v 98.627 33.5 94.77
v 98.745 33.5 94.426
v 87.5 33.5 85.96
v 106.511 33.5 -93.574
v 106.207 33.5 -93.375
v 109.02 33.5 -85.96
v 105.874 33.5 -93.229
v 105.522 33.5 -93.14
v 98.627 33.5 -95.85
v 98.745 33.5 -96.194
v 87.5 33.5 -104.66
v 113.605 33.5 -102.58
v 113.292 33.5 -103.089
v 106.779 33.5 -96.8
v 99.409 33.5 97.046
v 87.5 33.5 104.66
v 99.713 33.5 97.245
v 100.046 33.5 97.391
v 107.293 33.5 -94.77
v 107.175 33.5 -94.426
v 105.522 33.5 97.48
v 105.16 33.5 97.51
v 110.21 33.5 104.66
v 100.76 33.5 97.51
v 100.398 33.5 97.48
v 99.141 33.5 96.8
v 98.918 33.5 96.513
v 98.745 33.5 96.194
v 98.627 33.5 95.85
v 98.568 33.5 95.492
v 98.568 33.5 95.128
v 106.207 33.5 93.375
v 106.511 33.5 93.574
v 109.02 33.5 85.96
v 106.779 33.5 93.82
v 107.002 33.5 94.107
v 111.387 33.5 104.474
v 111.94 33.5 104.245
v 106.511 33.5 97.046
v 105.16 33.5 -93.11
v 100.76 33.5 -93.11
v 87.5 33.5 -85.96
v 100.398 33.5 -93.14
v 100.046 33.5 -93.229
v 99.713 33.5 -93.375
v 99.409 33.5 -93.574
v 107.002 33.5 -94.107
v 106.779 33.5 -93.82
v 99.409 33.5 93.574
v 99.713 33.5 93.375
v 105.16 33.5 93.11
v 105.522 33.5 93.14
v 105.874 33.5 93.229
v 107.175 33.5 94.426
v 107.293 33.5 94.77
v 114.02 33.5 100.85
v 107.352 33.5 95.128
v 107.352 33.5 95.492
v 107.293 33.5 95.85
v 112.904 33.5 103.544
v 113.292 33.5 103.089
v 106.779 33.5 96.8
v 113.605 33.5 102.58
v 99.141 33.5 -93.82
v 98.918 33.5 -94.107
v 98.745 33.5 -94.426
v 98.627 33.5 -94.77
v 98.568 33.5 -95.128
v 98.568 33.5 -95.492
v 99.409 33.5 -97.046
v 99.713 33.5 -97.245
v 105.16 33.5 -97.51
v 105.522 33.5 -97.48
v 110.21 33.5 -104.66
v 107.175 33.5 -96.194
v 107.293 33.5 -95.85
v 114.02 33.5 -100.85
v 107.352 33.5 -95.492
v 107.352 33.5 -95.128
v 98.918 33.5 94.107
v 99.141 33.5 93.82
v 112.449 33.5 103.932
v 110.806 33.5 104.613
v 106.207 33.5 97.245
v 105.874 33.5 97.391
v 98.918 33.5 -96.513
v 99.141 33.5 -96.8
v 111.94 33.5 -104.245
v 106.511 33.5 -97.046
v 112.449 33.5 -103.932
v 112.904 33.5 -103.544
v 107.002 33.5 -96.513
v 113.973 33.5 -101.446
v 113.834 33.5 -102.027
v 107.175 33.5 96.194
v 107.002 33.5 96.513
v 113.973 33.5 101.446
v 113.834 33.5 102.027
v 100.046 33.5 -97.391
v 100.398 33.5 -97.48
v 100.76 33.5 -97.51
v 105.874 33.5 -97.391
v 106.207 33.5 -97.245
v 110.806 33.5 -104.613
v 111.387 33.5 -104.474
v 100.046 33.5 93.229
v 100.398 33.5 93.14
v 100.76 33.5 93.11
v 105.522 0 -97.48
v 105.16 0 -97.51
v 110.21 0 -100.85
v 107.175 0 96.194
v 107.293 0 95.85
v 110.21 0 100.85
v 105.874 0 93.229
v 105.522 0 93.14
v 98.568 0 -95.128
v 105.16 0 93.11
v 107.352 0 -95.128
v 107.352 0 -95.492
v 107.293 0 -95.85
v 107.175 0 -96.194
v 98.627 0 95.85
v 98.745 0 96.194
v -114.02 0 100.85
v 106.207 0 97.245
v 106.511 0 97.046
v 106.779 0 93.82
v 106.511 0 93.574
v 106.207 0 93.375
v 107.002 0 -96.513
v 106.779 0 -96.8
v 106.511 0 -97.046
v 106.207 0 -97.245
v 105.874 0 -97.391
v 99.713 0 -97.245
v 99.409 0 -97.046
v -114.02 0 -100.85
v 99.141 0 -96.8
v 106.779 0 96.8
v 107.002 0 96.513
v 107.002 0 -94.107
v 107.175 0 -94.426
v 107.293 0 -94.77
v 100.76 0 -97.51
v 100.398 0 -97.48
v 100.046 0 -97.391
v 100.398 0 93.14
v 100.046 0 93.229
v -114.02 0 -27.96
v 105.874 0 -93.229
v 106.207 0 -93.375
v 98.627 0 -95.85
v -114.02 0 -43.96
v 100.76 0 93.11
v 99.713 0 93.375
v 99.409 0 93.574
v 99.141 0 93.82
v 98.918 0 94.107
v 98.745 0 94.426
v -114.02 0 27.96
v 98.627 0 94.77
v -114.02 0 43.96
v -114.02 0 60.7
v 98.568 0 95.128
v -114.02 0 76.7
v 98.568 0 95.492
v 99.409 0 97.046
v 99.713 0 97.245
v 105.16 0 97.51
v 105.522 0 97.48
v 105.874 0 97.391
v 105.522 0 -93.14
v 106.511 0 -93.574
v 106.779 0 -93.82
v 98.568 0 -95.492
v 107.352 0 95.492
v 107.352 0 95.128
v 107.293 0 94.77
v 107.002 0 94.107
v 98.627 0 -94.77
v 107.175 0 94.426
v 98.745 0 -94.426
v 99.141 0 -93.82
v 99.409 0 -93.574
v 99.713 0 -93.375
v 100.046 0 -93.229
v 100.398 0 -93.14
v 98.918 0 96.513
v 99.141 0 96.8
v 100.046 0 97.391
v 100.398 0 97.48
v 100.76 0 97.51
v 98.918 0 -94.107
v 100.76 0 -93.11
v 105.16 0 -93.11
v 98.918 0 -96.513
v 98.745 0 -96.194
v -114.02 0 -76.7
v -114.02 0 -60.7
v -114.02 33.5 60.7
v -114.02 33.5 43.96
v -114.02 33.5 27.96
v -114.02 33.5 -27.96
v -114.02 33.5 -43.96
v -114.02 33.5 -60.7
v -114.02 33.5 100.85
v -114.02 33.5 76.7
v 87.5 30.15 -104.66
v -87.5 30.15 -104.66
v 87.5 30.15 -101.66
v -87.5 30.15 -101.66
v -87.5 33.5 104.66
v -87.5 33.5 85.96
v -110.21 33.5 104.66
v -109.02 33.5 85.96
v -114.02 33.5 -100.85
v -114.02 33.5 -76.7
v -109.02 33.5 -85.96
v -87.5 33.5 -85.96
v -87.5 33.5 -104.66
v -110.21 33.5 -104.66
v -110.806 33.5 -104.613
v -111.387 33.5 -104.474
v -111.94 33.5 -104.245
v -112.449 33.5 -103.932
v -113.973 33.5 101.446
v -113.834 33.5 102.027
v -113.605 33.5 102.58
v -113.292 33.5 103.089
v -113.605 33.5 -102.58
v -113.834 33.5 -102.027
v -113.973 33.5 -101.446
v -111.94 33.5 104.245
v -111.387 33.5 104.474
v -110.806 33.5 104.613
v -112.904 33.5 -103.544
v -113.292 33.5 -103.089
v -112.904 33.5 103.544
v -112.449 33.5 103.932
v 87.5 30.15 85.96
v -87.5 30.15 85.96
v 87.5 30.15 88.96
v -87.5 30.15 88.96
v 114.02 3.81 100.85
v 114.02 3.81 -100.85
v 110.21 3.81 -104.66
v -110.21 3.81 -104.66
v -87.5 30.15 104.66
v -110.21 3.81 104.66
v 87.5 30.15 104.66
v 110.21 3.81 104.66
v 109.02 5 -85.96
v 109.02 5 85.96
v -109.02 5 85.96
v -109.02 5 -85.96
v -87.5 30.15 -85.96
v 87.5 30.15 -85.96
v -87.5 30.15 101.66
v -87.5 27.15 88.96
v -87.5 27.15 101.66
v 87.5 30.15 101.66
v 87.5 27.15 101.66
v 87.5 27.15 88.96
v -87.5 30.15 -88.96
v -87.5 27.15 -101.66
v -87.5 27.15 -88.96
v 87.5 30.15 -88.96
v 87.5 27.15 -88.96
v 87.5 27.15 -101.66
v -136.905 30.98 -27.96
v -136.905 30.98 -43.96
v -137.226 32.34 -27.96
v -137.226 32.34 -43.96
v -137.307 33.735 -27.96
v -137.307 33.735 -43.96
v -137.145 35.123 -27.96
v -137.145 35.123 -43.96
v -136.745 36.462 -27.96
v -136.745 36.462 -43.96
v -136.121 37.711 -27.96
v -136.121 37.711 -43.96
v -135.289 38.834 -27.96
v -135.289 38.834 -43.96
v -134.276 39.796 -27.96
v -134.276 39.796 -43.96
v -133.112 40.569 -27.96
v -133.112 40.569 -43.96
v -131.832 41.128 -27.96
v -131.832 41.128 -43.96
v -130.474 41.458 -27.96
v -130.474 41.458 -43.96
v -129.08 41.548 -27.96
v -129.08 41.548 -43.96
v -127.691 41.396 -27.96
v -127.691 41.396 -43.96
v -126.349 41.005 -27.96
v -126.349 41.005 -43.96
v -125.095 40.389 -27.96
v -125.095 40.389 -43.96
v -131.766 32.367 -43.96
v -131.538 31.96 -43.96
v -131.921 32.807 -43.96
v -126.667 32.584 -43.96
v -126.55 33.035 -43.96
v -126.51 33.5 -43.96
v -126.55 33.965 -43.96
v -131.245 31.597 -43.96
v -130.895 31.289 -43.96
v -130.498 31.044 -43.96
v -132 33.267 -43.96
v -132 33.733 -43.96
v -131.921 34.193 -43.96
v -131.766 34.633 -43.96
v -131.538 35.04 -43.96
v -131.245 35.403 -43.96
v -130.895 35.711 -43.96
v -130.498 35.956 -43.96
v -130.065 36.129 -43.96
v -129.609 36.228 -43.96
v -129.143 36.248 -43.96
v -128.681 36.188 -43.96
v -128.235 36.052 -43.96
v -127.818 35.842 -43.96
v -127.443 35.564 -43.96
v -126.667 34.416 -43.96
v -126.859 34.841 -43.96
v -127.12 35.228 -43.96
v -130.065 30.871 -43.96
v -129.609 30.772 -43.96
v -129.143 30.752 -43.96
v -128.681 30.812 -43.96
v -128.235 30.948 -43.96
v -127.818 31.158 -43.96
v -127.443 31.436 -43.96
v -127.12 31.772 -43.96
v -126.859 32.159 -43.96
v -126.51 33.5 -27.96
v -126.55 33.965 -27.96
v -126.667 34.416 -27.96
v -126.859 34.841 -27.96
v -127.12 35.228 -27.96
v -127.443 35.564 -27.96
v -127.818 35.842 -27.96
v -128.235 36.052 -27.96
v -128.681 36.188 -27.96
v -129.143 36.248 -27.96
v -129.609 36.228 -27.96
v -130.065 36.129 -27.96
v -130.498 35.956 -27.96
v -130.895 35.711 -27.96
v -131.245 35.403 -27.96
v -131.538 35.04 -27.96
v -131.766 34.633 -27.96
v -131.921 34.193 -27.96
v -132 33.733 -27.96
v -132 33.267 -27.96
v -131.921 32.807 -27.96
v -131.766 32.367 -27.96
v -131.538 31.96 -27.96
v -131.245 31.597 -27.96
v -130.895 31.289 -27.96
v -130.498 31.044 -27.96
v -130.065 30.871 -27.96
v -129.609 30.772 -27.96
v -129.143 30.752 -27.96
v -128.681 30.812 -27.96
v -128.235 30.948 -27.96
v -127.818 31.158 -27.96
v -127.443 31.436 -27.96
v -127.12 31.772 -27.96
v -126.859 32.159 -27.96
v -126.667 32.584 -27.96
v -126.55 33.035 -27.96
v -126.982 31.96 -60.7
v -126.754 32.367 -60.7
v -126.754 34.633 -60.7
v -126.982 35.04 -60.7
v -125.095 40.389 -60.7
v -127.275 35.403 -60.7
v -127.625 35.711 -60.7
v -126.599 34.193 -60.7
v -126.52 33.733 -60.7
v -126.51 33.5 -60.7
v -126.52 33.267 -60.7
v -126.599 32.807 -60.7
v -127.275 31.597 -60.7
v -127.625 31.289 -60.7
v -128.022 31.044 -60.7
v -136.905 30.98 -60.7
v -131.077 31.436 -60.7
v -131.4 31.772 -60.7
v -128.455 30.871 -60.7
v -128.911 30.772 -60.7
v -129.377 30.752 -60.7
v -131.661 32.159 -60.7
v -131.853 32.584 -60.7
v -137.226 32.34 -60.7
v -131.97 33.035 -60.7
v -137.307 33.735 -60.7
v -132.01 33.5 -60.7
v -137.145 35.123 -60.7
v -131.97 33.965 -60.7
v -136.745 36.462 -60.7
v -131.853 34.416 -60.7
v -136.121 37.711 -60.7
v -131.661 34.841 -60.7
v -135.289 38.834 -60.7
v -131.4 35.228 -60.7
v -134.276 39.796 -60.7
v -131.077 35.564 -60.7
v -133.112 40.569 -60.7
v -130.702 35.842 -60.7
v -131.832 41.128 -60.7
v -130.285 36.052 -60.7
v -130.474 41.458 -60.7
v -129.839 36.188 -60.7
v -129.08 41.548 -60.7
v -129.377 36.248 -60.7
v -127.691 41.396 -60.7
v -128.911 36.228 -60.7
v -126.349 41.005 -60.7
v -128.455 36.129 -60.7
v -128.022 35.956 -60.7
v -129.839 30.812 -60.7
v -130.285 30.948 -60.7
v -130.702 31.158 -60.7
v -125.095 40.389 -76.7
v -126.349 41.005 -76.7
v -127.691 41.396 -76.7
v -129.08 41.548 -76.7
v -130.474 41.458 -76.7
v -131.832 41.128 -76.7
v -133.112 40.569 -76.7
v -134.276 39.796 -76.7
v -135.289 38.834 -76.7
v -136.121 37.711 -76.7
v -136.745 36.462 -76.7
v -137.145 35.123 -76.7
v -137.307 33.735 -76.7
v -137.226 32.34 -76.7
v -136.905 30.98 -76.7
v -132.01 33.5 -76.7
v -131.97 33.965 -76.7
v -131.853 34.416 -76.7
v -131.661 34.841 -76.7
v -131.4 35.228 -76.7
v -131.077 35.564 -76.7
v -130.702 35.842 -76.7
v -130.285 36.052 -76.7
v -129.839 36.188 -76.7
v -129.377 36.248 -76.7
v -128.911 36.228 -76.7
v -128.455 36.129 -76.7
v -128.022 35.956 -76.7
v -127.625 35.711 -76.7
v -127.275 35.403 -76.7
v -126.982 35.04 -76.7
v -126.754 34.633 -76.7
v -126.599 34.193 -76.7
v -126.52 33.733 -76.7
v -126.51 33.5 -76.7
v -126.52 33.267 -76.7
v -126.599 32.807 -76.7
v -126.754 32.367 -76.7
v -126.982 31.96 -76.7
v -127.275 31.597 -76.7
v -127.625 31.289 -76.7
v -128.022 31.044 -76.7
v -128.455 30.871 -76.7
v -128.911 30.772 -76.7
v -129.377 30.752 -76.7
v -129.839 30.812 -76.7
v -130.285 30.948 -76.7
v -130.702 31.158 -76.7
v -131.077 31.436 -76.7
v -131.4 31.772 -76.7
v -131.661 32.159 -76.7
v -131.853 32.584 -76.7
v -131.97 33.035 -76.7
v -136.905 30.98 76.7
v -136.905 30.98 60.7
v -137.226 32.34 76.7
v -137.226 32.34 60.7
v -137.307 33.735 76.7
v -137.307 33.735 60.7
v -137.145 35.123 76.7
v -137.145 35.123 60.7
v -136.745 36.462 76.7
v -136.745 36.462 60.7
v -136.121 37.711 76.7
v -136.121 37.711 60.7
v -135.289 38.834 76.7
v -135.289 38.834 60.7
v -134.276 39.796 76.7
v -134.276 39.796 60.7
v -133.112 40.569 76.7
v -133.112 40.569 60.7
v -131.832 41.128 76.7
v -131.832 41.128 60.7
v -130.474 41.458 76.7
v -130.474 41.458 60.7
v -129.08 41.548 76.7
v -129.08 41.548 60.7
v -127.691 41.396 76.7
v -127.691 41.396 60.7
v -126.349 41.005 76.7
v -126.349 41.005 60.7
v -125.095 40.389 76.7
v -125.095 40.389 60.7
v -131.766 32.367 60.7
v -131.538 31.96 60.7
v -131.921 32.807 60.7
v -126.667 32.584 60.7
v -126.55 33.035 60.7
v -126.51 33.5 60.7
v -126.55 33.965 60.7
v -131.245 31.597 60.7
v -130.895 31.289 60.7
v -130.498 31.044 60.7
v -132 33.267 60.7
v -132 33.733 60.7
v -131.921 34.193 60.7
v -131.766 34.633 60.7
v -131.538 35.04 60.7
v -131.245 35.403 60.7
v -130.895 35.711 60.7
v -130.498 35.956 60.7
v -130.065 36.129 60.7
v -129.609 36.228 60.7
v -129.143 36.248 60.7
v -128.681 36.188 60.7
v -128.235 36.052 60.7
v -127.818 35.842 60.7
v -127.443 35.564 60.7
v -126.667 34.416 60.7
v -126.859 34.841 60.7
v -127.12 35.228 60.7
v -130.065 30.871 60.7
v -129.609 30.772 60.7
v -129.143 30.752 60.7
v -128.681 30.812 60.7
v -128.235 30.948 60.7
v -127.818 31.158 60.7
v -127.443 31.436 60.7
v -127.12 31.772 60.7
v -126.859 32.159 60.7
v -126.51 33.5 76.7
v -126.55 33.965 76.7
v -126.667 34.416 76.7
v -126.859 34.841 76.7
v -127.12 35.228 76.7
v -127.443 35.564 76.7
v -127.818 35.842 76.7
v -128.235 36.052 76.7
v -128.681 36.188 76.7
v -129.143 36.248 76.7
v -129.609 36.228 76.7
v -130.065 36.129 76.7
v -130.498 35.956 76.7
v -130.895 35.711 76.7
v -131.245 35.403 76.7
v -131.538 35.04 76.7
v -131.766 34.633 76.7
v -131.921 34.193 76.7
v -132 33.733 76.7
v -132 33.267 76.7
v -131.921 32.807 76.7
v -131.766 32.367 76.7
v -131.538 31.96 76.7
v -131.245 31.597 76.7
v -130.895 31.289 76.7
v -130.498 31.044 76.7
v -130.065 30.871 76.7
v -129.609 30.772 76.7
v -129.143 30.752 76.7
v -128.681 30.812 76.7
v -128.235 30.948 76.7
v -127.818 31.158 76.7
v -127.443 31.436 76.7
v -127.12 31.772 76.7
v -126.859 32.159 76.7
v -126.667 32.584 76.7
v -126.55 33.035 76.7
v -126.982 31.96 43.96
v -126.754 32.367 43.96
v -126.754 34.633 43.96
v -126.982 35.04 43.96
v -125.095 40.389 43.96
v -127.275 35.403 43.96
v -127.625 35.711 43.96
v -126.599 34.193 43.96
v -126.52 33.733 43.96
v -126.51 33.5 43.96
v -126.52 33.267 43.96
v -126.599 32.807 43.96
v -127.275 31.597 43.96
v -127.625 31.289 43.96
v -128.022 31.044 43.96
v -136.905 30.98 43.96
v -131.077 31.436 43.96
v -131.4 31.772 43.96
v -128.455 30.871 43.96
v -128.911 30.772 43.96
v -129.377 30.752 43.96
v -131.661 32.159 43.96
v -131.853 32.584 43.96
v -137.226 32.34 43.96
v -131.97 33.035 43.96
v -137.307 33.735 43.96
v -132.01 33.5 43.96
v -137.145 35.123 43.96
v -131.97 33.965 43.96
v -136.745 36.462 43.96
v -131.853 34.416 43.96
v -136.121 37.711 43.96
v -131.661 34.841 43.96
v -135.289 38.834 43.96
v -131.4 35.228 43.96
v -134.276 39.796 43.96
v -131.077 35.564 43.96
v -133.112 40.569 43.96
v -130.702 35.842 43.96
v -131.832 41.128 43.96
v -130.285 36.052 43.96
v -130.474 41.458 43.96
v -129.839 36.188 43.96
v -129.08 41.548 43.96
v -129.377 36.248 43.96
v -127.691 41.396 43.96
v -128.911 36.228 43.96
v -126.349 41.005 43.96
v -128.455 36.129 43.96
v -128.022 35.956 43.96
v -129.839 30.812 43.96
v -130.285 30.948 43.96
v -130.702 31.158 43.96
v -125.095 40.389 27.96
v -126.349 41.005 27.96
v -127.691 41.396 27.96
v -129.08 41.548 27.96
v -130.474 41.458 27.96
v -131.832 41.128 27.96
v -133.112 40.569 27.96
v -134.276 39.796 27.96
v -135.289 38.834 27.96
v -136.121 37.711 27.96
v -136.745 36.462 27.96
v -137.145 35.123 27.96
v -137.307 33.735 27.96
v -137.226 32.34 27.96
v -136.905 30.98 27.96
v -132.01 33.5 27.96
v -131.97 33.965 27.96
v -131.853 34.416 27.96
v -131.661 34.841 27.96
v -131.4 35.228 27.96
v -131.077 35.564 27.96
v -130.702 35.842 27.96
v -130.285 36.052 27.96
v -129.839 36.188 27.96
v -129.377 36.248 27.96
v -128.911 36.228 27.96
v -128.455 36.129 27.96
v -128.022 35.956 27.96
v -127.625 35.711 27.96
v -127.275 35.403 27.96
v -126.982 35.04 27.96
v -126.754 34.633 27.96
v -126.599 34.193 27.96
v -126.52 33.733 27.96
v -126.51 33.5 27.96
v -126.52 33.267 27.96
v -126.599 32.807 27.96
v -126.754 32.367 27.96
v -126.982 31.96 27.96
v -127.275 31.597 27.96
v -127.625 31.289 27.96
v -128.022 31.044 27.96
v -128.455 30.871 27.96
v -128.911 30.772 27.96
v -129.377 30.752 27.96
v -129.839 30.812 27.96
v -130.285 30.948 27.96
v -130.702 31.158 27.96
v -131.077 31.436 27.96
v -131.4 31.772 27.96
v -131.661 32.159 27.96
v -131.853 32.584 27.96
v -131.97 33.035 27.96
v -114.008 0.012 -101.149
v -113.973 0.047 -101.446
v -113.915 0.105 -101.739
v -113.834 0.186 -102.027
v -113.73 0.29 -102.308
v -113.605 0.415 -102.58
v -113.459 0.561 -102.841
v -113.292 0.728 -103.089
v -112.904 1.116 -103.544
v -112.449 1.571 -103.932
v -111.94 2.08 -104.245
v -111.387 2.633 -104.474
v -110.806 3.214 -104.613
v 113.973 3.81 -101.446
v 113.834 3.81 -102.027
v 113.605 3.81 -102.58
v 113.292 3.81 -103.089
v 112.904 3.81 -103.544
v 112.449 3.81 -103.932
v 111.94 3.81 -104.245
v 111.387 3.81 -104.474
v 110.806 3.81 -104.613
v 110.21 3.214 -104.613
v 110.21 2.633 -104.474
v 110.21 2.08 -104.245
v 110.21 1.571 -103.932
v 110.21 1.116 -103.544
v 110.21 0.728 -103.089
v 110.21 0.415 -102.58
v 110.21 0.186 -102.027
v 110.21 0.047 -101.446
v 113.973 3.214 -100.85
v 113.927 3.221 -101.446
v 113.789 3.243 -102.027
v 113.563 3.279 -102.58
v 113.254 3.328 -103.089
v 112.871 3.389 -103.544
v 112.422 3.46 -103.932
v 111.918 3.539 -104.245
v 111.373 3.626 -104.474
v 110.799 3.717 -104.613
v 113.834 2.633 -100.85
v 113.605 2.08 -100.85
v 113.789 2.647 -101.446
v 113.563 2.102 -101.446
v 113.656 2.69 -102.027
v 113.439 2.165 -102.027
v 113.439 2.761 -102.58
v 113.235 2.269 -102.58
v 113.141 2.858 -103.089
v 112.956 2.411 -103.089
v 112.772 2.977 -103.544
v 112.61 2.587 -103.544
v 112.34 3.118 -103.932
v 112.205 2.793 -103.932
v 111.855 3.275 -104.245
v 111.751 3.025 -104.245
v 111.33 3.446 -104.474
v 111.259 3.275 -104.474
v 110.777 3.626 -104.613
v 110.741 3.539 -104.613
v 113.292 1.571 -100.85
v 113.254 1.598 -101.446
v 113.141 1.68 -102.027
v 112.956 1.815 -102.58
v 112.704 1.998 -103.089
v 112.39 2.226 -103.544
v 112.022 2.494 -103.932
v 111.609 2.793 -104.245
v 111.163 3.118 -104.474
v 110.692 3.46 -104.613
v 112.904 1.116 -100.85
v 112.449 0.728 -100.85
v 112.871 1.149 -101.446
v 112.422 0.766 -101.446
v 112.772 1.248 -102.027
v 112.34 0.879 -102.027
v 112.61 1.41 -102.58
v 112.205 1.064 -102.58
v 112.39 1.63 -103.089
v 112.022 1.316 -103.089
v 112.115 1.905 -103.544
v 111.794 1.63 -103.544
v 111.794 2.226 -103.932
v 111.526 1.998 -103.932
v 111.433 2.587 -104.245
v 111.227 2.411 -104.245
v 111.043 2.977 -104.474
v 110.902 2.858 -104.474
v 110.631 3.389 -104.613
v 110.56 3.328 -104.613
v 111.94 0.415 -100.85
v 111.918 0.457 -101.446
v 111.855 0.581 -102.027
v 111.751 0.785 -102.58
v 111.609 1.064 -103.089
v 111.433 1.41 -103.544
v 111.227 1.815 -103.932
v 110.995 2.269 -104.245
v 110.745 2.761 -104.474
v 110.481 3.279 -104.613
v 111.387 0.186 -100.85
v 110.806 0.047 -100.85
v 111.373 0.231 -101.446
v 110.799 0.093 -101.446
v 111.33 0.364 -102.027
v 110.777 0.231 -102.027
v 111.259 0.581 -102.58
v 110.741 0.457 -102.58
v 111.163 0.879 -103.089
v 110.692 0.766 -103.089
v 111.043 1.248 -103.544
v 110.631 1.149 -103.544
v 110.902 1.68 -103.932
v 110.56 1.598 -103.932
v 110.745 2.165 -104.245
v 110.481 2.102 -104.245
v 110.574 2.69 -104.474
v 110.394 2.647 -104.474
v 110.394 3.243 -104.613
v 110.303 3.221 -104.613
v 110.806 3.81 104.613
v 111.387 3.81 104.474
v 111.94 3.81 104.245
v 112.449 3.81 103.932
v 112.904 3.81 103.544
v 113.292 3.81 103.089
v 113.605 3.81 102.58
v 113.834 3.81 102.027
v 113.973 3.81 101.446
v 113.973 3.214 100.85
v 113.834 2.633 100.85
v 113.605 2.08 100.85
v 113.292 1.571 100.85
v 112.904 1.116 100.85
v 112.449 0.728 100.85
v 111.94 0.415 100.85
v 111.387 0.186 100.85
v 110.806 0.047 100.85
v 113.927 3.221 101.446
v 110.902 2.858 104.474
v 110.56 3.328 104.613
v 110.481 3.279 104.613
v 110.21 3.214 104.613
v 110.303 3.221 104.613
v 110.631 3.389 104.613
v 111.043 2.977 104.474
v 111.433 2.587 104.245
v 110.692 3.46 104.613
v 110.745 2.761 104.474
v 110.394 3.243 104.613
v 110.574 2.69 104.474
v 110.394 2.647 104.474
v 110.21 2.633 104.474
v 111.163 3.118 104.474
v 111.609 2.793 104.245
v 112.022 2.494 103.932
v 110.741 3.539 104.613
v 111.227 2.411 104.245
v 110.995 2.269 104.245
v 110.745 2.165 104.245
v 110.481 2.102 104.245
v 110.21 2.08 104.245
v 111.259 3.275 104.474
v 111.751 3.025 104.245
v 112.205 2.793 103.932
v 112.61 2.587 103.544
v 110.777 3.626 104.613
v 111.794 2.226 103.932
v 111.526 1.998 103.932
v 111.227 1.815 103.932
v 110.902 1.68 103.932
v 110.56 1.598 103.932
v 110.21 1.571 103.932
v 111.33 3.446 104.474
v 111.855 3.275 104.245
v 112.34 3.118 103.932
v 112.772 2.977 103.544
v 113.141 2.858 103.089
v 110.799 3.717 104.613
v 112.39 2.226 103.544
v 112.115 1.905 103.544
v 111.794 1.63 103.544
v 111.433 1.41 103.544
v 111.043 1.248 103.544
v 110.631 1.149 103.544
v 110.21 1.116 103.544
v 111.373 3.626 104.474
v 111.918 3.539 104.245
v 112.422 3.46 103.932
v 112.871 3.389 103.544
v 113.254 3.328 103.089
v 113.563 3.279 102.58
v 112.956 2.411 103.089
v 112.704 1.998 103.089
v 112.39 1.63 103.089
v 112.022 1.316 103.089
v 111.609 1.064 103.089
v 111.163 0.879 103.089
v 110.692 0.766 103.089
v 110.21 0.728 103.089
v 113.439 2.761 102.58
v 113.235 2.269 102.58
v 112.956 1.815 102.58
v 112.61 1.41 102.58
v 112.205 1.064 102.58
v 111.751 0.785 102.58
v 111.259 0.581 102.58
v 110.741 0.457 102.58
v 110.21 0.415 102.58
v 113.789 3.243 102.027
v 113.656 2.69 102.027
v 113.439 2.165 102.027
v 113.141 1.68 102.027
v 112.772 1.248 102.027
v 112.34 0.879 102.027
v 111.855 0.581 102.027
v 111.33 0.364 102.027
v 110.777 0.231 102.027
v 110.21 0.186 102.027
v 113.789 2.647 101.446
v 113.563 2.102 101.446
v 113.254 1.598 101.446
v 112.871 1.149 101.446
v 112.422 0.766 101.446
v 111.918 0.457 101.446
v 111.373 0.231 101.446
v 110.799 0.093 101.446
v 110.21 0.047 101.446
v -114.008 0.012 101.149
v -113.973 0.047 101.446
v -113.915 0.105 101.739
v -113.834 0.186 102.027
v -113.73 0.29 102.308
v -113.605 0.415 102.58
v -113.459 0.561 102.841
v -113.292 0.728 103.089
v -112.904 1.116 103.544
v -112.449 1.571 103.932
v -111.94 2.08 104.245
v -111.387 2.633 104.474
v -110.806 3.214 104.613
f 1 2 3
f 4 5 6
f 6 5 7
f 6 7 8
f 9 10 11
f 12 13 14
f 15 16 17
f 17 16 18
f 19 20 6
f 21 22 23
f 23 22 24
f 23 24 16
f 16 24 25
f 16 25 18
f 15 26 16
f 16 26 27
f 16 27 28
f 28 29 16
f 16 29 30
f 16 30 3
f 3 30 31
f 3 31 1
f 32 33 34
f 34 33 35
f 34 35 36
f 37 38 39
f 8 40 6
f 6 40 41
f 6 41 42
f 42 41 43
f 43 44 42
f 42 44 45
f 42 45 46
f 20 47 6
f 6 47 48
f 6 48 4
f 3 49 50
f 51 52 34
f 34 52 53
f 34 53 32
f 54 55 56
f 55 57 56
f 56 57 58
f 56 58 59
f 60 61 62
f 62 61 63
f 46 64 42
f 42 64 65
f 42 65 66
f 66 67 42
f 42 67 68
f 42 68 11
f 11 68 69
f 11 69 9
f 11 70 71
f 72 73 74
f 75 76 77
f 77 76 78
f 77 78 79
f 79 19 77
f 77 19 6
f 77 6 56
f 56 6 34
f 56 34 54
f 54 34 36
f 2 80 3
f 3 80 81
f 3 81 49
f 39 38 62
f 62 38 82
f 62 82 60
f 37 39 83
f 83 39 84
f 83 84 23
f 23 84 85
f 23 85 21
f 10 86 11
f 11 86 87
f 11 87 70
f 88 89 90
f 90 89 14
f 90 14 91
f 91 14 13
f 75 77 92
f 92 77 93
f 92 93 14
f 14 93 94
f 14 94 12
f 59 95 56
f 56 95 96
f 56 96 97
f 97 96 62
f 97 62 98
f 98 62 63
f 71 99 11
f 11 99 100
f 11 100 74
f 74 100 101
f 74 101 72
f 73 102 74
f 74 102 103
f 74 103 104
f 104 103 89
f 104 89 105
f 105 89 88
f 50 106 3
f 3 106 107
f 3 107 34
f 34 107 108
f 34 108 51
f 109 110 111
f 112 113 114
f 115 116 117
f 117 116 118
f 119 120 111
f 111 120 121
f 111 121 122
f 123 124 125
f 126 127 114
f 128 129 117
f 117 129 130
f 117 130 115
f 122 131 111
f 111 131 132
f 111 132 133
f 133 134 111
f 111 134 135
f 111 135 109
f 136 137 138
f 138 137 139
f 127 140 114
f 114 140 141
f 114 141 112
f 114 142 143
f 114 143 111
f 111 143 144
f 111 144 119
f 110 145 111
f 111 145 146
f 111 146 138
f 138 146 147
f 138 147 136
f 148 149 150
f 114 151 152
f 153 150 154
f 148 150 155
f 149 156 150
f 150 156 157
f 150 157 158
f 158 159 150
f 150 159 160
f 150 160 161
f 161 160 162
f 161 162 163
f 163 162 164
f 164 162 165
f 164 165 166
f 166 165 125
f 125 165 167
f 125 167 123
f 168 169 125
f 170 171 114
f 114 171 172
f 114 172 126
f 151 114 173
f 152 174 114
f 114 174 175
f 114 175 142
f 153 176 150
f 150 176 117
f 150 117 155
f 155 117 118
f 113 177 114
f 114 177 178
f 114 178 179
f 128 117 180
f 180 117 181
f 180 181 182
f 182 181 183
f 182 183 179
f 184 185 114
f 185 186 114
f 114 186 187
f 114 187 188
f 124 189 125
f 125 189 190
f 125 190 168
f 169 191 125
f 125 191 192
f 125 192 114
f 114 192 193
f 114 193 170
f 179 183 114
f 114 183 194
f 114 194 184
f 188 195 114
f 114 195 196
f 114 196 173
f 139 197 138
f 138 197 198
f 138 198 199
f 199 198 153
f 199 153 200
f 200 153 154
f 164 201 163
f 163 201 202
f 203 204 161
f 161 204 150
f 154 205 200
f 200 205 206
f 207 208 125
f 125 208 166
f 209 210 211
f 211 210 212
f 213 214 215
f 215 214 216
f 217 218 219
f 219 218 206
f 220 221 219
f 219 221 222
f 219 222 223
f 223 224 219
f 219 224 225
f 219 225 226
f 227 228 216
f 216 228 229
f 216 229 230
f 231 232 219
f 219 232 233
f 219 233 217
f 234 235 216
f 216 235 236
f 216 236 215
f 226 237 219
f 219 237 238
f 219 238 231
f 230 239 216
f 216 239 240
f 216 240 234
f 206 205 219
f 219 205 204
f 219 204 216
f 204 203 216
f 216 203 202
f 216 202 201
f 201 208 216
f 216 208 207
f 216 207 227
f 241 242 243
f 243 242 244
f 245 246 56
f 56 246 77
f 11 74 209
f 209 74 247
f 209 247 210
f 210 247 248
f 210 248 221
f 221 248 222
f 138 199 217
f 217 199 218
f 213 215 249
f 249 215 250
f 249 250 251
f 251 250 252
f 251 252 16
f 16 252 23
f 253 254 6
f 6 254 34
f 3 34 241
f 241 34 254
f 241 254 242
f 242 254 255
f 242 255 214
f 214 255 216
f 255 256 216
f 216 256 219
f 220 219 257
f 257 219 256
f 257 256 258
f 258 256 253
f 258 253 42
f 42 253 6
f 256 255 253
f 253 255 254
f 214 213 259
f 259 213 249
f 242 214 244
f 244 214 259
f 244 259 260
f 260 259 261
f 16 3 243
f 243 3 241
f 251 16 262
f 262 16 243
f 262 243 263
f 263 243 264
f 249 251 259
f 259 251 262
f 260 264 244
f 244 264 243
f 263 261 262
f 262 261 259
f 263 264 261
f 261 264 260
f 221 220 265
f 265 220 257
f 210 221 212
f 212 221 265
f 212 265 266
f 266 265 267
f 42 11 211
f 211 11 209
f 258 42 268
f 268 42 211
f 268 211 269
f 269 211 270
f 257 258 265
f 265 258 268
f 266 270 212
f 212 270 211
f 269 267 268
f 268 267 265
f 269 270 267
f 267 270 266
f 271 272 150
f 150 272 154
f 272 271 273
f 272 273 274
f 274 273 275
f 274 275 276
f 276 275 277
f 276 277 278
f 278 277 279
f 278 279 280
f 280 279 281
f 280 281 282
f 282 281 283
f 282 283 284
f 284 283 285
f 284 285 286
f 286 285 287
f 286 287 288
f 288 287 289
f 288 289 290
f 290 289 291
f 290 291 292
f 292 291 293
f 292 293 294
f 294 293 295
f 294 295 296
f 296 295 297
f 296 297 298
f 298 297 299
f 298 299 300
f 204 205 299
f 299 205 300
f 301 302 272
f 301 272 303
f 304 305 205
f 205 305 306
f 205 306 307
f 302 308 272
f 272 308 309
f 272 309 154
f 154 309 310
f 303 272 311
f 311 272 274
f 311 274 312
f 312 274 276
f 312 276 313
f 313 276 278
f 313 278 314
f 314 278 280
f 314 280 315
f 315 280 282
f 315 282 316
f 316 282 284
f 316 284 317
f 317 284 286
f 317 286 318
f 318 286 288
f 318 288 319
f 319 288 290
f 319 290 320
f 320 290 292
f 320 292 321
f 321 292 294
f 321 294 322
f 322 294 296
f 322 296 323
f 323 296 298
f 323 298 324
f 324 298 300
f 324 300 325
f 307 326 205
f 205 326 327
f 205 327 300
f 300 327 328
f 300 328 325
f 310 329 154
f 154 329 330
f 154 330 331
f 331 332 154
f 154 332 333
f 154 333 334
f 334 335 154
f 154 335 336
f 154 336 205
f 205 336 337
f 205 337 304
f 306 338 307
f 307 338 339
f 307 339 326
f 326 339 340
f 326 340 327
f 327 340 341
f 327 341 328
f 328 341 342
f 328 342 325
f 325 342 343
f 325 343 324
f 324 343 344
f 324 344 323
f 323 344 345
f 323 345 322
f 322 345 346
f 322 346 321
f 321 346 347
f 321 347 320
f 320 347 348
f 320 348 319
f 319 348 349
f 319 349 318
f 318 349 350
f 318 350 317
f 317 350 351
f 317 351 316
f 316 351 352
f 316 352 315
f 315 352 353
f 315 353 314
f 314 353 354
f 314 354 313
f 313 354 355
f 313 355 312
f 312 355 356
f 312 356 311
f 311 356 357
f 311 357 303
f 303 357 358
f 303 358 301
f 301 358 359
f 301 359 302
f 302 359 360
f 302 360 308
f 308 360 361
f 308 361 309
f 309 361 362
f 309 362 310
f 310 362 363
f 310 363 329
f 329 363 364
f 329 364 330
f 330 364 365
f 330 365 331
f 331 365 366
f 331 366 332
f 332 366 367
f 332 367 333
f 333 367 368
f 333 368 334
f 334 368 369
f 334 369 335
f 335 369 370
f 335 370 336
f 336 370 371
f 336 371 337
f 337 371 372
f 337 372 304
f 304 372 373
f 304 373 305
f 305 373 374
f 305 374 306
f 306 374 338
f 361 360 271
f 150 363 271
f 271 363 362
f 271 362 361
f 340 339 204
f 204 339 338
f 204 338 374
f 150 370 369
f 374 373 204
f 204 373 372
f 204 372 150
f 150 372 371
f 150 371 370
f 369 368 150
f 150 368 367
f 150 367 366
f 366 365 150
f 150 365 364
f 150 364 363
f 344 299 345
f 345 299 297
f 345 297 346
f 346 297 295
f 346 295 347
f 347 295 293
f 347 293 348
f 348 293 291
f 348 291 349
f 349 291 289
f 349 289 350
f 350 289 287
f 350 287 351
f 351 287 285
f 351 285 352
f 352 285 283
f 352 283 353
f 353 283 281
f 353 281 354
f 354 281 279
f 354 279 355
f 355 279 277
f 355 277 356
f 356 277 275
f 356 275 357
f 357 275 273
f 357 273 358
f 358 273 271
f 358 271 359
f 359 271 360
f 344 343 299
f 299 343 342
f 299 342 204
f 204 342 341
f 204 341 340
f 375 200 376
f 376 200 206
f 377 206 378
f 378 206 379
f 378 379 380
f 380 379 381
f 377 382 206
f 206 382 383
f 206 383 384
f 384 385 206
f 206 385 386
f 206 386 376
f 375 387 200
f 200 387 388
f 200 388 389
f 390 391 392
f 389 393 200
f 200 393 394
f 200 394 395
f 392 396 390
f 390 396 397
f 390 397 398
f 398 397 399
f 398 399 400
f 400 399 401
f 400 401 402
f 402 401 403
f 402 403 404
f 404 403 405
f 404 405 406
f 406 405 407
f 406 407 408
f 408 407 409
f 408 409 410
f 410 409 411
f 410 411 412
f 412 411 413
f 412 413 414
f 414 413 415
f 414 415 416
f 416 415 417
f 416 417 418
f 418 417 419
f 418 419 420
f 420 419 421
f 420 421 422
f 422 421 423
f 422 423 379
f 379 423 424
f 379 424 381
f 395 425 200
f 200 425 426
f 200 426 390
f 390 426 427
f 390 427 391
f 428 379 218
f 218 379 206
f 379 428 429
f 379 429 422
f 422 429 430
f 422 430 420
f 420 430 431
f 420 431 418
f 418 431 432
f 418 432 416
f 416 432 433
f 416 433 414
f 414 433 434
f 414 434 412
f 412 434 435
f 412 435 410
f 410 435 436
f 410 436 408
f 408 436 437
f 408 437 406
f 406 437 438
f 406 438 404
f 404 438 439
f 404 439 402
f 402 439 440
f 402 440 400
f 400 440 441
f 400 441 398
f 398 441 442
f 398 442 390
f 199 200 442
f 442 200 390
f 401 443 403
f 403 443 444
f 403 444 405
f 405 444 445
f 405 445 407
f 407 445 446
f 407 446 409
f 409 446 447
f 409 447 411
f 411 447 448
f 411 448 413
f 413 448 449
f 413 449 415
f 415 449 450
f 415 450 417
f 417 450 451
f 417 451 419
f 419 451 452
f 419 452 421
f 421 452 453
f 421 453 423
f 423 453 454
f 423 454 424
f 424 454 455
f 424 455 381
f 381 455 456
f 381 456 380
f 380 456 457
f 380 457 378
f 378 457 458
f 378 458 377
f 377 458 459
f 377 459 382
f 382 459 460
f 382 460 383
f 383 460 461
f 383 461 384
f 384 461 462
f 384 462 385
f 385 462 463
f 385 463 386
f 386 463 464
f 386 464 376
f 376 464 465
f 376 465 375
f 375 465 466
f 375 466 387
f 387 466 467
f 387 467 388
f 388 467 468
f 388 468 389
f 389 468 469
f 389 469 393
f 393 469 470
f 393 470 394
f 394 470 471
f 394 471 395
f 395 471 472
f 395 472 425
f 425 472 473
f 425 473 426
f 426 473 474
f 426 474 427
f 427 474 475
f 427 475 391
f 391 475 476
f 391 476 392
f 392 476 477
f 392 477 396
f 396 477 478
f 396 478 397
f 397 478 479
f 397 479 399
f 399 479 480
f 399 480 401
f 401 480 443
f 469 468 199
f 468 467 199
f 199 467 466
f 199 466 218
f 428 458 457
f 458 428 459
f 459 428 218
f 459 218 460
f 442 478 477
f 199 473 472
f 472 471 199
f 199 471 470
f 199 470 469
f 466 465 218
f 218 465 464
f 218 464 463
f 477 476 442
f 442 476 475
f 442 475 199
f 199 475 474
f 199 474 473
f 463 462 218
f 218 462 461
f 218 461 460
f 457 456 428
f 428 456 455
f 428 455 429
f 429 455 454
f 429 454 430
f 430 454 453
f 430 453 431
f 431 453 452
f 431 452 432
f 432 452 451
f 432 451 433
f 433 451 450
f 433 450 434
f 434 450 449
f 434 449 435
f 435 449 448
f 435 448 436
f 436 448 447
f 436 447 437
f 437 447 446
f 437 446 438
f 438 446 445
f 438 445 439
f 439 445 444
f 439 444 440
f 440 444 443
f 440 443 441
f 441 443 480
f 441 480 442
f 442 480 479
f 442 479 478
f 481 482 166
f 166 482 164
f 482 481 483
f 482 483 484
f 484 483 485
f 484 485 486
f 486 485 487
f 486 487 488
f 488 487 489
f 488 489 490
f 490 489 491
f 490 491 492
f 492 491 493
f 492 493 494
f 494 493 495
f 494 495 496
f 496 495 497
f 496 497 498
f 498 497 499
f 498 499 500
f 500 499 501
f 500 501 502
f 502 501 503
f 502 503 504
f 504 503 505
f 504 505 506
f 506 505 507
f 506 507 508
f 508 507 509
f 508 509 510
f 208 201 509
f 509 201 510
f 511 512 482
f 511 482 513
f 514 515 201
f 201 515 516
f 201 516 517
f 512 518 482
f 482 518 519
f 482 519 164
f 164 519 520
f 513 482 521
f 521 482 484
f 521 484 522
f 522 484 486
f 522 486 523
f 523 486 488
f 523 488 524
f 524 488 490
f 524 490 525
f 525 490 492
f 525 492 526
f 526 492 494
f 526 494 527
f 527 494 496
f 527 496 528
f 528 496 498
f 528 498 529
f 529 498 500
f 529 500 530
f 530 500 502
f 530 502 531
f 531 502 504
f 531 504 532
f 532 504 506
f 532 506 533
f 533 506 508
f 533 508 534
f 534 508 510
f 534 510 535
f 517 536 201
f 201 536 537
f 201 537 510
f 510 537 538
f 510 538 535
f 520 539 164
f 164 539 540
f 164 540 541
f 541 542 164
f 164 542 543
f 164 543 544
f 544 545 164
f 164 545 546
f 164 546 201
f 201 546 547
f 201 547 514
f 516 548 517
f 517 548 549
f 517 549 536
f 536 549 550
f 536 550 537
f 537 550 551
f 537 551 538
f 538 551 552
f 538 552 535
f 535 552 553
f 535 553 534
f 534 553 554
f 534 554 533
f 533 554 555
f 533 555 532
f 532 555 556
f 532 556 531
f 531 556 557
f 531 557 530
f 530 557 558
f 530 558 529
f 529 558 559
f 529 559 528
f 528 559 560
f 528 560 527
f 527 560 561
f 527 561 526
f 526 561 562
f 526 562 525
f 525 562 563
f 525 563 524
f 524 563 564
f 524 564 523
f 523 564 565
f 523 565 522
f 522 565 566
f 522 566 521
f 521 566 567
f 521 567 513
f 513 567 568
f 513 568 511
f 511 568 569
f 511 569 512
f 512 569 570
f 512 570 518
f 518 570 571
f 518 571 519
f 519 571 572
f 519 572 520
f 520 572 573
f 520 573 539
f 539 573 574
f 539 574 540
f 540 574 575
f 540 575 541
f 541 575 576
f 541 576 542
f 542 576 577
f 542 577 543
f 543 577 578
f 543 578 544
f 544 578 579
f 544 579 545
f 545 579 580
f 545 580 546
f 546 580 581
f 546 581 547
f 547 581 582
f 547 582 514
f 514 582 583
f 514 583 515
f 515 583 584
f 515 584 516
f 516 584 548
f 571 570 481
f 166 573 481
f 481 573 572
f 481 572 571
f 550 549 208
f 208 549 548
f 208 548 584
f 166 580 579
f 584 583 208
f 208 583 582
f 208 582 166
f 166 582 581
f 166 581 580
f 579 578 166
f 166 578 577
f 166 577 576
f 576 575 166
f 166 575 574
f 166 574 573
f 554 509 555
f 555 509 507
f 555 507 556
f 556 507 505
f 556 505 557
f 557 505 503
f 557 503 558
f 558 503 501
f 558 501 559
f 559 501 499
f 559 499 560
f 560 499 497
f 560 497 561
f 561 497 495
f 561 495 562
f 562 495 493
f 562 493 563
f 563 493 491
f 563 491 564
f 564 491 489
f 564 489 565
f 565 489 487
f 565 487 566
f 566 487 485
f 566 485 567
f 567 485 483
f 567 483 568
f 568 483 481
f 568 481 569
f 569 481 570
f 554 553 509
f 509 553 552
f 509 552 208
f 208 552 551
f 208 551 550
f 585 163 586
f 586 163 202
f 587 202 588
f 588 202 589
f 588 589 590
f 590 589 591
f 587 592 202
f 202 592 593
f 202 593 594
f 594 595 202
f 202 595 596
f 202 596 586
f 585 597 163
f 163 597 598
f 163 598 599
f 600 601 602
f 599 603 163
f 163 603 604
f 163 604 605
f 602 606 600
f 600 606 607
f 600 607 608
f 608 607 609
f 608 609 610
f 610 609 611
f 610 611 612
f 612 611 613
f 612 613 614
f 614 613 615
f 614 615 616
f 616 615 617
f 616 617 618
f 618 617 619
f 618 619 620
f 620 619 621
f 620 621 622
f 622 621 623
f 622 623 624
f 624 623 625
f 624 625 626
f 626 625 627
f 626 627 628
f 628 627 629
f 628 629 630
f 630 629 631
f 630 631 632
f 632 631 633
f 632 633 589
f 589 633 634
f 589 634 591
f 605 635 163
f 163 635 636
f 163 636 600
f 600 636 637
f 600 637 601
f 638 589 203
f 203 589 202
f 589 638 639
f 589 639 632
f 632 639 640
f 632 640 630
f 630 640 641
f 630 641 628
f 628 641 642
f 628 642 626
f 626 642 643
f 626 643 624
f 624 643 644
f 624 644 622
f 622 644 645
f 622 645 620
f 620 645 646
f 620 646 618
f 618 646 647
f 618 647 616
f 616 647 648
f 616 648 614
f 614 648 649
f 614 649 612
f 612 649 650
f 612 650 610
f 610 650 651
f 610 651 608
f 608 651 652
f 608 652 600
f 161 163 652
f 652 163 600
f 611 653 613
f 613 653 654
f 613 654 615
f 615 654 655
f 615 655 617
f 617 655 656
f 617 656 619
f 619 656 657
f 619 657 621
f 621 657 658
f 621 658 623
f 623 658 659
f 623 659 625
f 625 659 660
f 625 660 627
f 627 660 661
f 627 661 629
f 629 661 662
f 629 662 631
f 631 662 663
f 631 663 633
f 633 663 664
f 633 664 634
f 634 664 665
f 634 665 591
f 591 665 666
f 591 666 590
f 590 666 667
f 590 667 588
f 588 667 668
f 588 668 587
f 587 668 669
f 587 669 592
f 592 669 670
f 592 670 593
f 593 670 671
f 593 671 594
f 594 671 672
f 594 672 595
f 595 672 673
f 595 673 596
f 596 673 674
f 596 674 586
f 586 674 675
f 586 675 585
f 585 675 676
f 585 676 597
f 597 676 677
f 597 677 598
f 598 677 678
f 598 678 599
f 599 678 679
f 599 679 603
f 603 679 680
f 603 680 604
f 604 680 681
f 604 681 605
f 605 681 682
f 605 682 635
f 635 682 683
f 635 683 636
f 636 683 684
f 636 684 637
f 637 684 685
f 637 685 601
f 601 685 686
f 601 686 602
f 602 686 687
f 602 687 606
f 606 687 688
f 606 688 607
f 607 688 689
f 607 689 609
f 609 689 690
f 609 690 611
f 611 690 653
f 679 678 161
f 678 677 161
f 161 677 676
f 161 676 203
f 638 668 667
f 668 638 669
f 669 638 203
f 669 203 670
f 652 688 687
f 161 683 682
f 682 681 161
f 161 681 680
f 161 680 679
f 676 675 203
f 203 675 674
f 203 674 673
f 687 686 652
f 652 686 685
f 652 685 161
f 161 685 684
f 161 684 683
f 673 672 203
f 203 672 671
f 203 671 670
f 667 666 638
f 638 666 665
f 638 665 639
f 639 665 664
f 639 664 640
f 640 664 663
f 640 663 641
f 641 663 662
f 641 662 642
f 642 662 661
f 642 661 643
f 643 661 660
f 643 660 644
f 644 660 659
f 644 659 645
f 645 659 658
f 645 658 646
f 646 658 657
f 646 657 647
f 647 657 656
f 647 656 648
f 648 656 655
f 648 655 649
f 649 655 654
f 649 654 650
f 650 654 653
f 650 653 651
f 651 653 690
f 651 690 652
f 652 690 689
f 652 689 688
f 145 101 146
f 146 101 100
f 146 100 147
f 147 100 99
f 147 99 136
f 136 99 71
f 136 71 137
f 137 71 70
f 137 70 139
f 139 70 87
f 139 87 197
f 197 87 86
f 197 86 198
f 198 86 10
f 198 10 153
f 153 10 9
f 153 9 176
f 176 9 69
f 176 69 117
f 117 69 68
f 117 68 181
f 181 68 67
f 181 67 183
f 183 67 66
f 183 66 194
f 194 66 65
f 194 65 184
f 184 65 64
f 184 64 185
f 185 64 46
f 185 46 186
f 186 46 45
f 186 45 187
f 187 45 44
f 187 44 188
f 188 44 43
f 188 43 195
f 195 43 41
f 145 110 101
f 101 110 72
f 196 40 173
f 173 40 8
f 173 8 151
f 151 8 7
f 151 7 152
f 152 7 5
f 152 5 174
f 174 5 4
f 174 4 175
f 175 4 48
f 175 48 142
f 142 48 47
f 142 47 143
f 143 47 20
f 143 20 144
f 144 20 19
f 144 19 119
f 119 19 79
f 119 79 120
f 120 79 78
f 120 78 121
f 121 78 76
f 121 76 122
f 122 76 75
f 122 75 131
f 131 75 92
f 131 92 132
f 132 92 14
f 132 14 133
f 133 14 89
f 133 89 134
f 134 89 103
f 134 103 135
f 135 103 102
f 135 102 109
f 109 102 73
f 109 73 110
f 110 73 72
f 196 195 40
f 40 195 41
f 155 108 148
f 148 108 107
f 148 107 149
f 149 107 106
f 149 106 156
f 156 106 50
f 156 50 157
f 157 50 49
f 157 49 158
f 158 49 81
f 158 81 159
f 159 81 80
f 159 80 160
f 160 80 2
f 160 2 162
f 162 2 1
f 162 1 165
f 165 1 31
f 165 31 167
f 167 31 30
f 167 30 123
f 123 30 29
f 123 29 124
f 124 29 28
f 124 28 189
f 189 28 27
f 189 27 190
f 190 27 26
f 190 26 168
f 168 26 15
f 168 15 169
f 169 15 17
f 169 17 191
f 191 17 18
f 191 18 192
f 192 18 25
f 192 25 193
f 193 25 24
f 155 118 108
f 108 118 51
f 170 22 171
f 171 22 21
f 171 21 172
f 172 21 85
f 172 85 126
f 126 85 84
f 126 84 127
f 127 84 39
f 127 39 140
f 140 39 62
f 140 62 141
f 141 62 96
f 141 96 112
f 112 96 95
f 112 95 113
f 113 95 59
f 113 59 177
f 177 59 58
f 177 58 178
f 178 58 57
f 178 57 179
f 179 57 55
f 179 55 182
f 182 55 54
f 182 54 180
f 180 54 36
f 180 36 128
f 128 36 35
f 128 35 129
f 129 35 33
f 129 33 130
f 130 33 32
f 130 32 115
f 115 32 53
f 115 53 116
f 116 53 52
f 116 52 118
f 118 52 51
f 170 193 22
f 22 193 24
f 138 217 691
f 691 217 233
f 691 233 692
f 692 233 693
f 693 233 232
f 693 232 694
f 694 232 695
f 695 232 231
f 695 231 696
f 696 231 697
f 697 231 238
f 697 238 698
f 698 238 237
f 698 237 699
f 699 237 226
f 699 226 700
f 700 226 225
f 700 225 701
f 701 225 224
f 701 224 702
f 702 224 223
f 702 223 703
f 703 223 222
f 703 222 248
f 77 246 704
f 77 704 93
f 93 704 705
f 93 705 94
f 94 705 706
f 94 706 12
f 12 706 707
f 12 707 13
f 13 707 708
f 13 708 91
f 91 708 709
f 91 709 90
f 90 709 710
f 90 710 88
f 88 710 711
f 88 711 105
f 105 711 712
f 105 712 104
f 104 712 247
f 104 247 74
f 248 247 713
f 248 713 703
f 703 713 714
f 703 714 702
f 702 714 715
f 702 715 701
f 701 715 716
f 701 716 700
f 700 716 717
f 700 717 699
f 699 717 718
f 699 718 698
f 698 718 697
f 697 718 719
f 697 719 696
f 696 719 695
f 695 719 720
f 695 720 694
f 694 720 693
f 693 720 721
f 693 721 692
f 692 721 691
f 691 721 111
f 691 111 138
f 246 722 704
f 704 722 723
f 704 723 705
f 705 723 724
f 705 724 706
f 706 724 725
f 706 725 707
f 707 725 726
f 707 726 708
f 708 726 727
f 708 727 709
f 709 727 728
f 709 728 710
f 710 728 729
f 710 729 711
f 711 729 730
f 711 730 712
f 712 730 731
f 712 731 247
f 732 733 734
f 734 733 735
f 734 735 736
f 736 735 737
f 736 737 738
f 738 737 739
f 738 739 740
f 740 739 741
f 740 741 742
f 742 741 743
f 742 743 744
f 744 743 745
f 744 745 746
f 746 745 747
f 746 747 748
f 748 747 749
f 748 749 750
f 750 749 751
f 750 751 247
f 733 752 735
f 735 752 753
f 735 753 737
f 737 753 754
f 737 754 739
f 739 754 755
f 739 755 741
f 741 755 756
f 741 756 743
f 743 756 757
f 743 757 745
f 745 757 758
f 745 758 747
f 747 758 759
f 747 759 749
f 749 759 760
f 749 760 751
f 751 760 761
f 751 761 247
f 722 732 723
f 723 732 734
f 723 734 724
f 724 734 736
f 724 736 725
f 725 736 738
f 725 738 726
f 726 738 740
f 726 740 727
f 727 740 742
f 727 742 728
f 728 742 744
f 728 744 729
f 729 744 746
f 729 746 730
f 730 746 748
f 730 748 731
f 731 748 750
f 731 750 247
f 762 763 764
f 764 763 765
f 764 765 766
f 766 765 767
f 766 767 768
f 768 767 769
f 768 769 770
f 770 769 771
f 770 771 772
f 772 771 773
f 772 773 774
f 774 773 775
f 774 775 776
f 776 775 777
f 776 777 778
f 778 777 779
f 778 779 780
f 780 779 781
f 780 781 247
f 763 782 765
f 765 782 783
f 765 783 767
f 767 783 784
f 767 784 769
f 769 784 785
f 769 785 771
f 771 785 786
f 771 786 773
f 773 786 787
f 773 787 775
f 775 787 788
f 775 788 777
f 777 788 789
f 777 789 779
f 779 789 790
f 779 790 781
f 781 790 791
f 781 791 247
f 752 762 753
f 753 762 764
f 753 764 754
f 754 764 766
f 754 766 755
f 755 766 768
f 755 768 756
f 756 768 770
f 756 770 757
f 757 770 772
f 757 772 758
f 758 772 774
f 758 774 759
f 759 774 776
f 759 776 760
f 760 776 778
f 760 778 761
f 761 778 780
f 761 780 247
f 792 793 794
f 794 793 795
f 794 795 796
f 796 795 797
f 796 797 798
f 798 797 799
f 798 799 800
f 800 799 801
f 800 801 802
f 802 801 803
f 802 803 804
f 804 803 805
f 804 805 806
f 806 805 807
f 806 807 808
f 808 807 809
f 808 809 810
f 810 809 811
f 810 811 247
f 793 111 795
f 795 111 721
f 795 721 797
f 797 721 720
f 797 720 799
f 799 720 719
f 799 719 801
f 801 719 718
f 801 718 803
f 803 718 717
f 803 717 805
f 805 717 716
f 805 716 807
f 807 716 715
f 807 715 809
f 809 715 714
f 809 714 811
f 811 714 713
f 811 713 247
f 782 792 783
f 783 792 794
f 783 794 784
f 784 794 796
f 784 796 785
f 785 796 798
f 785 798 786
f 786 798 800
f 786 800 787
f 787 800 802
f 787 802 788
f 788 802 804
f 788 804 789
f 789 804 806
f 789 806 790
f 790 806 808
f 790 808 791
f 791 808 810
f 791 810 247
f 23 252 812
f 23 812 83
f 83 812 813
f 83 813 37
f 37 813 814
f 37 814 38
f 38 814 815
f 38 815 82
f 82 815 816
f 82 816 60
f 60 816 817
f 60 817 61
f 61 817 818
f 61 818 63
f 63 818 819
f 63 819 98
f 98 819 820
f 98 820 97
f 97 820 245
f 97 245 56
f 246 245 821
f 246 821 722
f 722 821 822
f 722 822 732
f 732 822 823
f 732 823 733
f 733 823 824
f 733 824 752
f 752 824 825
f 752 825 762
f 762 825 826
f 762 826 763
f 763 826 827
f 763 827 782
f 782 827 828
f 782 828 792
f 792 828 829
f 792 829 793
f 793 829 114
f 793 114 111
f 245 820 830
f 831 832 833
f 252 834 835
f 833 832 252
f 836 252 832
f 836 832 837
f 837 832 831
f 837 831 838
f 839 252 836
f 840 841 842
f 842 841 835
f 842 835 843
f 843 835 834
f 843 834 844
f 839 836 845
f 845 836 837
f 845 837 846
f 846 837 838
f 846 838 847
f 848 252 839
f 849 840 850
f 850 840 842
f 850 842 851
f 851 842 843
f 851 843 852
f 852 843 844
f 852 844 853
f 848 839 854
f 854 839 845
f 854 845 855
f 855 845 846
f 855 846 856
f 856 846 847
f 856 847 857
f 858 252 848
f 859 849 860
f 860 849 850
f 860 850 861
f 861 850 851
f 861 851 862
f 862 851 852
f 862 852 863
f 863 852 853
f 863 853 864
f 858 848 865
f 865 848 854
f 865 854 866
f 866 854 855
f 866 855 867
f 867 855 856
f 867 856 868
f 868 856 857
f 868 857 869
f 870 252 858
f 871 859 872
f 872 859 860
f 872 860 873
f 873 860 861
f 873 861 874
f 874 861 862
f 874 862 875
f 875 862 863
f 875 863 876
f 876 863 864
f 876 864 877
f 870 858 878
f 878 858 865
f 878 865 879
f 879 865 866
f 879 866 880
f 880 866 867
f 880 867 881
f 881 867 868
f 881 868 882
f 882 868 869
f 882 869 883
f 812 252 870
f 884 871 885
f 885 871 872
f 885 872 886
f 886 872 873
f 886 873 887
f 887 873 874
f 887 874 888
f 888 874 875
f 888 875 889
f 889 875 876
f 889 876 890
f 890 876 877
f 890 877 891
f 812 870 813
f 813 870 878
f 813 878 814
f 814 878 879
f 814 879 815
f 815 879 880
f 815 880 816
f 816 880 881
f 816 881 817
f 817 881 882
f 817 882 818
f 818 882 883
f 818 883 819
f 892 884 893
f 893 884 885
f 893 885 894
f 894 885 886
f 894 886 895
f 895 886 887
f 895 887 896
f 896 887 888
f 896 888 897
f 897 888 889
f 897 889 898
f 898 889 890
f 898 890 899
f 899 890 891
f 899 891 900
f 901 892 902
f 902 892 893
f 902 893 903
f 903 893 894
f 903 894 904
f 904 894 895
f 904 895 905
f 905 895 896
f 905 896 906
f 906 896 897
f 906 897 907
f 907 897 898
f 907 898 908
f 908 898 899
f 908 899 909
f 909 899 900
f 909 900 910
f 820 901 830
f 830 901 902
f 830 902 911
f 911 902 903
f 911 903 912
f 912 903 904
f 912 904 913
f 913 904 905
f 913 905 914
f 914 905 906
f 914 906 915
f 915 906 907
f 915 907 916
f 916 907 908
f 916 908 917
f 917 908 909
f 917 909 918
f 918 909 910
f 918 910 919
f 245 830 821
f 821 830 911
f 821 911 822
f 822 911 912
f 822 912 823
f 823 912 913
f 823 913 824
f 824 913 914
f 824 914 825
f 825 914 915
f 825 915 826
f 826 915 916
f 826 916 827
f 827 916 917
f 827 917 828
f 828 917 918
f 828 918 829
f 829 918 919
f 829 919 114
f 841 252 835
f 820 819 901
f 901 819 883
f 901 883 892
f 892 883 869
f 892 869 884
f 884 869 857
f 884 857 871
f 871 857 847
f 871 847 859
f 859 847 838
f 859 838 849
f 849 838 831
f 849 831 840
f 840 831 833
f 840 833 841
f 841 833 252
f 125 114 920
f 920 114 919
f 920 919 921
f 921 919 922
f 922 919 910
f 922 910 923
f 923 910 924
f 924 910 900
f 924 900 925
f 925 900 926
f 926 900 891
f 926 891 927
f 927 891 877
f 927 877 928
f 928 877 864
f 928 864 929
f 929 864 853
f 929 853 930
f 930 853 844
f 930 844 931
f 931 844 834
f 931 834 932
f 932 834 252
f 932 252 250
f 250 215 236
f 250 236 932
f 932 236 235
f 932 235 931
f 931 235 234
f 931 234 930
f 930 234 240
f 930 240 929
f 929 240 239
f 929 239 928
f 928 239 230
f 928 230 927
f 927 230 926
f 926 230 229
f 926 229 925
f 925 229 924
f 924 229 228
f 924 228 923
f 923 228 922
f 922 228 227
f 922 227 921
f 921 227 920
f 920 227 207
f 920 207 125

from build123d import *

# Parameters (mm, degrees)
SKETCH1_W               = 228.04
SKETCH1_H               = 209.32
BOSS_EXTRUDE1_DEPTH     = 33.5
SKETCH2_W               = 218.04
SKETCH2_H               = 171.92
CUT_EXTRUDE1_DEPTH      = 28.5
SKETCH4_W               = 175
SKETCH4_H               = 18.7
CUT_EXTRUDE2_DEPTH      = 3.35
SKETCH5_W               = 175
SKETCH5_H               = 12.7
CUT_EXTRUDE3_DEPTH      = 3
SKETCH6_W               = 175
SKETCH6_H               = 18.7
CUT_EXTRUDE4_DEPTH      = 3.35
SKETCH7_W               = 175
SKETCH7_H               = 12.7
CUT_EXTRUDE5_DEPTH      = 3
SKETCH9_R               = 2.75
BOSS_EXTRUDE2_DEPTH     = 8
MIRROR2_COPY_1_SKETCH_R = 2.75
MIRROR2_COPY_1_DEPTH    = 8
CUT_EXTRUDE6_DEPTH      = 33.5
FILLET3_R               = 3.81


with BuildPart() as part:
    # Sketch1 → Boss-Extrude1 (new body)
    with BuildSketch(Plane(origin=(0, 0, 0), x_dir=(1, 0, 0), z_dir=(0, 1, 0))):
        Rectangle(SKETCH1_W, SKETCH1_H)
    extrude(amount=BOSS_EXTRUDE1_DEPTH)

    # Sketch2 → Cut-Extrude1 (cut)
    with BuildSketch(Plane(origin=(0, 33.5, 0), x_dir=(1, 0, 0), z_dir=(0, 1, 0))):
        Rectangle(SKETCH2_W, SKETCH2_H)
    extrude(amount=-CUT_EXTRUDE1_DEPTH, mode=Mode.SUBTRACT)

    # Sketch4 → Cut-Extrude2 (cut)
    with BuildSketch(Plane(origin=(0, 33.5, 0), x_dir=(1, 0, 0), z_dir=(0, 1, 0))):
        with Locations((0, -95.31)):
            Rectangle(SKETCH4_W, SKETCH4_H)
    extrude(amount=-CUT_EXTRUDE2_DEPTH, mode=Mode.SUBTRACT)

    # Sketch5 → Cut-Extrude3 (cut)
    with BuildSketch(Plane(origin=(0, 30.15, 0), x_dir=(1, 0, 0), z_dir=(0, 1, 0))):
        with Locations((0, -95.31)):
            Rectangle(SKETCH5_W, SKETCH5_H)
    extrude(amount=-CUT_EXTRUDE3_DEPTH, mode=Mode.SUBTRACT)

    # Sketch6 → Cut-Extrude4 (cut)
    with BuildSketch(Plane(origin=(0, 33.5, 0), x_dir=(1, 0, 0), z_dir=(0, 1, 0))):
        with Locations((0, 95.31)):
            Rectangle(SKETCH6_W, SKETCH6_H)
    extrude(amount=-CUT_EXTRUDE4_DEPTH, mode=Mode.SUBTRACT)

    # Sketch7 → Cut-Extrude5 (cut)
    with BuildSketch(Plane(origin=(0, 30.15, 0), x_dir=(1, 0, 0), z_dir=(0, 1, 0))):
        with Locations((0, 95.31)):
            Rectangle(SKETCH7_W, SKETCH7_H)
    extrude(amount=-CUT_EXTRUDE5_DEPTH, mode=Mode.SUBTRACT)

    # Sketch9 → Boss-Extrude2 (add, symmetric)
    with BuildSketch(Plane.XY.offset(-35.96)):
        with BuildLine():
            Line((-114.02, 0), (-136.905438379, 30.980124606))
            ThreePointArc((-136.905438379, 30.980124606), (-134.276086797, 39.796139551), (-125.095451514, 40.389051887))
            Line((-125.095451514, 40.389051887), (-114.02, 33.5))
            Line((-114.02, 33.5), (-114.02, 0))
        make_face()
        with Locations((-129.26, 33.5)):
            Circle(SKETCH9_R, mode=Mode.SUBTRACT)
    boss_extrude2 = extrude(amount=BOSS_EXTRUDE2_DEPTH, both=True)

    # Mirror1: Boss-Extrude2 across plane
    add(boss_extrude2.mirror(Plane.XY.offset(-52.33)))

    # Mirror2: Boss-Extrude2 across plane
    add(boss_extrude2.mirror(Plane.XY))

    # Mirror2 copy 1 sketch → Mirror2 copy 1 (add, symmetric)
    with BuildSketch(Plane.XY.offset(68.7)):
        with BuildLine():
            Line((-114.02, 0), (-136.905438379, 30.980124606))
            ThreePointArc((-136.905438379, 30.980124606), (-134.276086797, 39.796139551), (-125.095451514, 40.389051887))
            Line((-125.095451514, 40.389051887), (-114.02, 33.5))
            Line((-114.02, 33.5), (-114.02, 0))
        make_face()
        with Locations((-129.26, 33.5)):
            Circle(MIRROR2_COPY_1_SKETCH_R, mode=Mode.SUBTRACT)
    extrude(amount=MIRROR2_COPY_1_DEPTH, both=True)

    # Sketch11 → Cut-Extrude6 (cut)
    with BuildSketch(Plane(origin=(0, 33.5, 0), x_dir=(1, 0, 0), z_dir=(0, 1, 0))):
        with BuildLine():
            Line((100.76, 93.11), (105.160002263, 93.11))
            ThreePointArc((105.160002263, 93.11), (107.360001132, 95.310001132), (105.16, 97.51))
            Line((105.16, 97.51), (100.76, 97.51))
            ThreePointArc((100.76, 97.51), (98.56, 95.31), (100.76, 93.11))
        make_face()
    cut_extrude6 = extrude(amount=-CUT_EXTRUDE6_DEPTH, mode=Mode.SUBTRACT)

    # Mirror3: Cut-Extrude6 across plane
    add(cut_extrude6.mirror(Plane.XY), mode=Mode.SUBTRACT)

    # Fillet3
    fillet3_edges = [part.edges().sort_by_distance(p)[0] for p in [
        (0, 0, 104.66),
        (0, 0, -104.66),
        (114.02, 0, 0),
        (114.02, 16.75, 104.66),
        (-114.02, 16.75, 104.66),
        (-114.02, 16.75, -104.66),
        (114.02, 16.75, -104.66),
    ]]
    fillet(fillet3_edges, radius=FILLET3_R)


solid = part.part
